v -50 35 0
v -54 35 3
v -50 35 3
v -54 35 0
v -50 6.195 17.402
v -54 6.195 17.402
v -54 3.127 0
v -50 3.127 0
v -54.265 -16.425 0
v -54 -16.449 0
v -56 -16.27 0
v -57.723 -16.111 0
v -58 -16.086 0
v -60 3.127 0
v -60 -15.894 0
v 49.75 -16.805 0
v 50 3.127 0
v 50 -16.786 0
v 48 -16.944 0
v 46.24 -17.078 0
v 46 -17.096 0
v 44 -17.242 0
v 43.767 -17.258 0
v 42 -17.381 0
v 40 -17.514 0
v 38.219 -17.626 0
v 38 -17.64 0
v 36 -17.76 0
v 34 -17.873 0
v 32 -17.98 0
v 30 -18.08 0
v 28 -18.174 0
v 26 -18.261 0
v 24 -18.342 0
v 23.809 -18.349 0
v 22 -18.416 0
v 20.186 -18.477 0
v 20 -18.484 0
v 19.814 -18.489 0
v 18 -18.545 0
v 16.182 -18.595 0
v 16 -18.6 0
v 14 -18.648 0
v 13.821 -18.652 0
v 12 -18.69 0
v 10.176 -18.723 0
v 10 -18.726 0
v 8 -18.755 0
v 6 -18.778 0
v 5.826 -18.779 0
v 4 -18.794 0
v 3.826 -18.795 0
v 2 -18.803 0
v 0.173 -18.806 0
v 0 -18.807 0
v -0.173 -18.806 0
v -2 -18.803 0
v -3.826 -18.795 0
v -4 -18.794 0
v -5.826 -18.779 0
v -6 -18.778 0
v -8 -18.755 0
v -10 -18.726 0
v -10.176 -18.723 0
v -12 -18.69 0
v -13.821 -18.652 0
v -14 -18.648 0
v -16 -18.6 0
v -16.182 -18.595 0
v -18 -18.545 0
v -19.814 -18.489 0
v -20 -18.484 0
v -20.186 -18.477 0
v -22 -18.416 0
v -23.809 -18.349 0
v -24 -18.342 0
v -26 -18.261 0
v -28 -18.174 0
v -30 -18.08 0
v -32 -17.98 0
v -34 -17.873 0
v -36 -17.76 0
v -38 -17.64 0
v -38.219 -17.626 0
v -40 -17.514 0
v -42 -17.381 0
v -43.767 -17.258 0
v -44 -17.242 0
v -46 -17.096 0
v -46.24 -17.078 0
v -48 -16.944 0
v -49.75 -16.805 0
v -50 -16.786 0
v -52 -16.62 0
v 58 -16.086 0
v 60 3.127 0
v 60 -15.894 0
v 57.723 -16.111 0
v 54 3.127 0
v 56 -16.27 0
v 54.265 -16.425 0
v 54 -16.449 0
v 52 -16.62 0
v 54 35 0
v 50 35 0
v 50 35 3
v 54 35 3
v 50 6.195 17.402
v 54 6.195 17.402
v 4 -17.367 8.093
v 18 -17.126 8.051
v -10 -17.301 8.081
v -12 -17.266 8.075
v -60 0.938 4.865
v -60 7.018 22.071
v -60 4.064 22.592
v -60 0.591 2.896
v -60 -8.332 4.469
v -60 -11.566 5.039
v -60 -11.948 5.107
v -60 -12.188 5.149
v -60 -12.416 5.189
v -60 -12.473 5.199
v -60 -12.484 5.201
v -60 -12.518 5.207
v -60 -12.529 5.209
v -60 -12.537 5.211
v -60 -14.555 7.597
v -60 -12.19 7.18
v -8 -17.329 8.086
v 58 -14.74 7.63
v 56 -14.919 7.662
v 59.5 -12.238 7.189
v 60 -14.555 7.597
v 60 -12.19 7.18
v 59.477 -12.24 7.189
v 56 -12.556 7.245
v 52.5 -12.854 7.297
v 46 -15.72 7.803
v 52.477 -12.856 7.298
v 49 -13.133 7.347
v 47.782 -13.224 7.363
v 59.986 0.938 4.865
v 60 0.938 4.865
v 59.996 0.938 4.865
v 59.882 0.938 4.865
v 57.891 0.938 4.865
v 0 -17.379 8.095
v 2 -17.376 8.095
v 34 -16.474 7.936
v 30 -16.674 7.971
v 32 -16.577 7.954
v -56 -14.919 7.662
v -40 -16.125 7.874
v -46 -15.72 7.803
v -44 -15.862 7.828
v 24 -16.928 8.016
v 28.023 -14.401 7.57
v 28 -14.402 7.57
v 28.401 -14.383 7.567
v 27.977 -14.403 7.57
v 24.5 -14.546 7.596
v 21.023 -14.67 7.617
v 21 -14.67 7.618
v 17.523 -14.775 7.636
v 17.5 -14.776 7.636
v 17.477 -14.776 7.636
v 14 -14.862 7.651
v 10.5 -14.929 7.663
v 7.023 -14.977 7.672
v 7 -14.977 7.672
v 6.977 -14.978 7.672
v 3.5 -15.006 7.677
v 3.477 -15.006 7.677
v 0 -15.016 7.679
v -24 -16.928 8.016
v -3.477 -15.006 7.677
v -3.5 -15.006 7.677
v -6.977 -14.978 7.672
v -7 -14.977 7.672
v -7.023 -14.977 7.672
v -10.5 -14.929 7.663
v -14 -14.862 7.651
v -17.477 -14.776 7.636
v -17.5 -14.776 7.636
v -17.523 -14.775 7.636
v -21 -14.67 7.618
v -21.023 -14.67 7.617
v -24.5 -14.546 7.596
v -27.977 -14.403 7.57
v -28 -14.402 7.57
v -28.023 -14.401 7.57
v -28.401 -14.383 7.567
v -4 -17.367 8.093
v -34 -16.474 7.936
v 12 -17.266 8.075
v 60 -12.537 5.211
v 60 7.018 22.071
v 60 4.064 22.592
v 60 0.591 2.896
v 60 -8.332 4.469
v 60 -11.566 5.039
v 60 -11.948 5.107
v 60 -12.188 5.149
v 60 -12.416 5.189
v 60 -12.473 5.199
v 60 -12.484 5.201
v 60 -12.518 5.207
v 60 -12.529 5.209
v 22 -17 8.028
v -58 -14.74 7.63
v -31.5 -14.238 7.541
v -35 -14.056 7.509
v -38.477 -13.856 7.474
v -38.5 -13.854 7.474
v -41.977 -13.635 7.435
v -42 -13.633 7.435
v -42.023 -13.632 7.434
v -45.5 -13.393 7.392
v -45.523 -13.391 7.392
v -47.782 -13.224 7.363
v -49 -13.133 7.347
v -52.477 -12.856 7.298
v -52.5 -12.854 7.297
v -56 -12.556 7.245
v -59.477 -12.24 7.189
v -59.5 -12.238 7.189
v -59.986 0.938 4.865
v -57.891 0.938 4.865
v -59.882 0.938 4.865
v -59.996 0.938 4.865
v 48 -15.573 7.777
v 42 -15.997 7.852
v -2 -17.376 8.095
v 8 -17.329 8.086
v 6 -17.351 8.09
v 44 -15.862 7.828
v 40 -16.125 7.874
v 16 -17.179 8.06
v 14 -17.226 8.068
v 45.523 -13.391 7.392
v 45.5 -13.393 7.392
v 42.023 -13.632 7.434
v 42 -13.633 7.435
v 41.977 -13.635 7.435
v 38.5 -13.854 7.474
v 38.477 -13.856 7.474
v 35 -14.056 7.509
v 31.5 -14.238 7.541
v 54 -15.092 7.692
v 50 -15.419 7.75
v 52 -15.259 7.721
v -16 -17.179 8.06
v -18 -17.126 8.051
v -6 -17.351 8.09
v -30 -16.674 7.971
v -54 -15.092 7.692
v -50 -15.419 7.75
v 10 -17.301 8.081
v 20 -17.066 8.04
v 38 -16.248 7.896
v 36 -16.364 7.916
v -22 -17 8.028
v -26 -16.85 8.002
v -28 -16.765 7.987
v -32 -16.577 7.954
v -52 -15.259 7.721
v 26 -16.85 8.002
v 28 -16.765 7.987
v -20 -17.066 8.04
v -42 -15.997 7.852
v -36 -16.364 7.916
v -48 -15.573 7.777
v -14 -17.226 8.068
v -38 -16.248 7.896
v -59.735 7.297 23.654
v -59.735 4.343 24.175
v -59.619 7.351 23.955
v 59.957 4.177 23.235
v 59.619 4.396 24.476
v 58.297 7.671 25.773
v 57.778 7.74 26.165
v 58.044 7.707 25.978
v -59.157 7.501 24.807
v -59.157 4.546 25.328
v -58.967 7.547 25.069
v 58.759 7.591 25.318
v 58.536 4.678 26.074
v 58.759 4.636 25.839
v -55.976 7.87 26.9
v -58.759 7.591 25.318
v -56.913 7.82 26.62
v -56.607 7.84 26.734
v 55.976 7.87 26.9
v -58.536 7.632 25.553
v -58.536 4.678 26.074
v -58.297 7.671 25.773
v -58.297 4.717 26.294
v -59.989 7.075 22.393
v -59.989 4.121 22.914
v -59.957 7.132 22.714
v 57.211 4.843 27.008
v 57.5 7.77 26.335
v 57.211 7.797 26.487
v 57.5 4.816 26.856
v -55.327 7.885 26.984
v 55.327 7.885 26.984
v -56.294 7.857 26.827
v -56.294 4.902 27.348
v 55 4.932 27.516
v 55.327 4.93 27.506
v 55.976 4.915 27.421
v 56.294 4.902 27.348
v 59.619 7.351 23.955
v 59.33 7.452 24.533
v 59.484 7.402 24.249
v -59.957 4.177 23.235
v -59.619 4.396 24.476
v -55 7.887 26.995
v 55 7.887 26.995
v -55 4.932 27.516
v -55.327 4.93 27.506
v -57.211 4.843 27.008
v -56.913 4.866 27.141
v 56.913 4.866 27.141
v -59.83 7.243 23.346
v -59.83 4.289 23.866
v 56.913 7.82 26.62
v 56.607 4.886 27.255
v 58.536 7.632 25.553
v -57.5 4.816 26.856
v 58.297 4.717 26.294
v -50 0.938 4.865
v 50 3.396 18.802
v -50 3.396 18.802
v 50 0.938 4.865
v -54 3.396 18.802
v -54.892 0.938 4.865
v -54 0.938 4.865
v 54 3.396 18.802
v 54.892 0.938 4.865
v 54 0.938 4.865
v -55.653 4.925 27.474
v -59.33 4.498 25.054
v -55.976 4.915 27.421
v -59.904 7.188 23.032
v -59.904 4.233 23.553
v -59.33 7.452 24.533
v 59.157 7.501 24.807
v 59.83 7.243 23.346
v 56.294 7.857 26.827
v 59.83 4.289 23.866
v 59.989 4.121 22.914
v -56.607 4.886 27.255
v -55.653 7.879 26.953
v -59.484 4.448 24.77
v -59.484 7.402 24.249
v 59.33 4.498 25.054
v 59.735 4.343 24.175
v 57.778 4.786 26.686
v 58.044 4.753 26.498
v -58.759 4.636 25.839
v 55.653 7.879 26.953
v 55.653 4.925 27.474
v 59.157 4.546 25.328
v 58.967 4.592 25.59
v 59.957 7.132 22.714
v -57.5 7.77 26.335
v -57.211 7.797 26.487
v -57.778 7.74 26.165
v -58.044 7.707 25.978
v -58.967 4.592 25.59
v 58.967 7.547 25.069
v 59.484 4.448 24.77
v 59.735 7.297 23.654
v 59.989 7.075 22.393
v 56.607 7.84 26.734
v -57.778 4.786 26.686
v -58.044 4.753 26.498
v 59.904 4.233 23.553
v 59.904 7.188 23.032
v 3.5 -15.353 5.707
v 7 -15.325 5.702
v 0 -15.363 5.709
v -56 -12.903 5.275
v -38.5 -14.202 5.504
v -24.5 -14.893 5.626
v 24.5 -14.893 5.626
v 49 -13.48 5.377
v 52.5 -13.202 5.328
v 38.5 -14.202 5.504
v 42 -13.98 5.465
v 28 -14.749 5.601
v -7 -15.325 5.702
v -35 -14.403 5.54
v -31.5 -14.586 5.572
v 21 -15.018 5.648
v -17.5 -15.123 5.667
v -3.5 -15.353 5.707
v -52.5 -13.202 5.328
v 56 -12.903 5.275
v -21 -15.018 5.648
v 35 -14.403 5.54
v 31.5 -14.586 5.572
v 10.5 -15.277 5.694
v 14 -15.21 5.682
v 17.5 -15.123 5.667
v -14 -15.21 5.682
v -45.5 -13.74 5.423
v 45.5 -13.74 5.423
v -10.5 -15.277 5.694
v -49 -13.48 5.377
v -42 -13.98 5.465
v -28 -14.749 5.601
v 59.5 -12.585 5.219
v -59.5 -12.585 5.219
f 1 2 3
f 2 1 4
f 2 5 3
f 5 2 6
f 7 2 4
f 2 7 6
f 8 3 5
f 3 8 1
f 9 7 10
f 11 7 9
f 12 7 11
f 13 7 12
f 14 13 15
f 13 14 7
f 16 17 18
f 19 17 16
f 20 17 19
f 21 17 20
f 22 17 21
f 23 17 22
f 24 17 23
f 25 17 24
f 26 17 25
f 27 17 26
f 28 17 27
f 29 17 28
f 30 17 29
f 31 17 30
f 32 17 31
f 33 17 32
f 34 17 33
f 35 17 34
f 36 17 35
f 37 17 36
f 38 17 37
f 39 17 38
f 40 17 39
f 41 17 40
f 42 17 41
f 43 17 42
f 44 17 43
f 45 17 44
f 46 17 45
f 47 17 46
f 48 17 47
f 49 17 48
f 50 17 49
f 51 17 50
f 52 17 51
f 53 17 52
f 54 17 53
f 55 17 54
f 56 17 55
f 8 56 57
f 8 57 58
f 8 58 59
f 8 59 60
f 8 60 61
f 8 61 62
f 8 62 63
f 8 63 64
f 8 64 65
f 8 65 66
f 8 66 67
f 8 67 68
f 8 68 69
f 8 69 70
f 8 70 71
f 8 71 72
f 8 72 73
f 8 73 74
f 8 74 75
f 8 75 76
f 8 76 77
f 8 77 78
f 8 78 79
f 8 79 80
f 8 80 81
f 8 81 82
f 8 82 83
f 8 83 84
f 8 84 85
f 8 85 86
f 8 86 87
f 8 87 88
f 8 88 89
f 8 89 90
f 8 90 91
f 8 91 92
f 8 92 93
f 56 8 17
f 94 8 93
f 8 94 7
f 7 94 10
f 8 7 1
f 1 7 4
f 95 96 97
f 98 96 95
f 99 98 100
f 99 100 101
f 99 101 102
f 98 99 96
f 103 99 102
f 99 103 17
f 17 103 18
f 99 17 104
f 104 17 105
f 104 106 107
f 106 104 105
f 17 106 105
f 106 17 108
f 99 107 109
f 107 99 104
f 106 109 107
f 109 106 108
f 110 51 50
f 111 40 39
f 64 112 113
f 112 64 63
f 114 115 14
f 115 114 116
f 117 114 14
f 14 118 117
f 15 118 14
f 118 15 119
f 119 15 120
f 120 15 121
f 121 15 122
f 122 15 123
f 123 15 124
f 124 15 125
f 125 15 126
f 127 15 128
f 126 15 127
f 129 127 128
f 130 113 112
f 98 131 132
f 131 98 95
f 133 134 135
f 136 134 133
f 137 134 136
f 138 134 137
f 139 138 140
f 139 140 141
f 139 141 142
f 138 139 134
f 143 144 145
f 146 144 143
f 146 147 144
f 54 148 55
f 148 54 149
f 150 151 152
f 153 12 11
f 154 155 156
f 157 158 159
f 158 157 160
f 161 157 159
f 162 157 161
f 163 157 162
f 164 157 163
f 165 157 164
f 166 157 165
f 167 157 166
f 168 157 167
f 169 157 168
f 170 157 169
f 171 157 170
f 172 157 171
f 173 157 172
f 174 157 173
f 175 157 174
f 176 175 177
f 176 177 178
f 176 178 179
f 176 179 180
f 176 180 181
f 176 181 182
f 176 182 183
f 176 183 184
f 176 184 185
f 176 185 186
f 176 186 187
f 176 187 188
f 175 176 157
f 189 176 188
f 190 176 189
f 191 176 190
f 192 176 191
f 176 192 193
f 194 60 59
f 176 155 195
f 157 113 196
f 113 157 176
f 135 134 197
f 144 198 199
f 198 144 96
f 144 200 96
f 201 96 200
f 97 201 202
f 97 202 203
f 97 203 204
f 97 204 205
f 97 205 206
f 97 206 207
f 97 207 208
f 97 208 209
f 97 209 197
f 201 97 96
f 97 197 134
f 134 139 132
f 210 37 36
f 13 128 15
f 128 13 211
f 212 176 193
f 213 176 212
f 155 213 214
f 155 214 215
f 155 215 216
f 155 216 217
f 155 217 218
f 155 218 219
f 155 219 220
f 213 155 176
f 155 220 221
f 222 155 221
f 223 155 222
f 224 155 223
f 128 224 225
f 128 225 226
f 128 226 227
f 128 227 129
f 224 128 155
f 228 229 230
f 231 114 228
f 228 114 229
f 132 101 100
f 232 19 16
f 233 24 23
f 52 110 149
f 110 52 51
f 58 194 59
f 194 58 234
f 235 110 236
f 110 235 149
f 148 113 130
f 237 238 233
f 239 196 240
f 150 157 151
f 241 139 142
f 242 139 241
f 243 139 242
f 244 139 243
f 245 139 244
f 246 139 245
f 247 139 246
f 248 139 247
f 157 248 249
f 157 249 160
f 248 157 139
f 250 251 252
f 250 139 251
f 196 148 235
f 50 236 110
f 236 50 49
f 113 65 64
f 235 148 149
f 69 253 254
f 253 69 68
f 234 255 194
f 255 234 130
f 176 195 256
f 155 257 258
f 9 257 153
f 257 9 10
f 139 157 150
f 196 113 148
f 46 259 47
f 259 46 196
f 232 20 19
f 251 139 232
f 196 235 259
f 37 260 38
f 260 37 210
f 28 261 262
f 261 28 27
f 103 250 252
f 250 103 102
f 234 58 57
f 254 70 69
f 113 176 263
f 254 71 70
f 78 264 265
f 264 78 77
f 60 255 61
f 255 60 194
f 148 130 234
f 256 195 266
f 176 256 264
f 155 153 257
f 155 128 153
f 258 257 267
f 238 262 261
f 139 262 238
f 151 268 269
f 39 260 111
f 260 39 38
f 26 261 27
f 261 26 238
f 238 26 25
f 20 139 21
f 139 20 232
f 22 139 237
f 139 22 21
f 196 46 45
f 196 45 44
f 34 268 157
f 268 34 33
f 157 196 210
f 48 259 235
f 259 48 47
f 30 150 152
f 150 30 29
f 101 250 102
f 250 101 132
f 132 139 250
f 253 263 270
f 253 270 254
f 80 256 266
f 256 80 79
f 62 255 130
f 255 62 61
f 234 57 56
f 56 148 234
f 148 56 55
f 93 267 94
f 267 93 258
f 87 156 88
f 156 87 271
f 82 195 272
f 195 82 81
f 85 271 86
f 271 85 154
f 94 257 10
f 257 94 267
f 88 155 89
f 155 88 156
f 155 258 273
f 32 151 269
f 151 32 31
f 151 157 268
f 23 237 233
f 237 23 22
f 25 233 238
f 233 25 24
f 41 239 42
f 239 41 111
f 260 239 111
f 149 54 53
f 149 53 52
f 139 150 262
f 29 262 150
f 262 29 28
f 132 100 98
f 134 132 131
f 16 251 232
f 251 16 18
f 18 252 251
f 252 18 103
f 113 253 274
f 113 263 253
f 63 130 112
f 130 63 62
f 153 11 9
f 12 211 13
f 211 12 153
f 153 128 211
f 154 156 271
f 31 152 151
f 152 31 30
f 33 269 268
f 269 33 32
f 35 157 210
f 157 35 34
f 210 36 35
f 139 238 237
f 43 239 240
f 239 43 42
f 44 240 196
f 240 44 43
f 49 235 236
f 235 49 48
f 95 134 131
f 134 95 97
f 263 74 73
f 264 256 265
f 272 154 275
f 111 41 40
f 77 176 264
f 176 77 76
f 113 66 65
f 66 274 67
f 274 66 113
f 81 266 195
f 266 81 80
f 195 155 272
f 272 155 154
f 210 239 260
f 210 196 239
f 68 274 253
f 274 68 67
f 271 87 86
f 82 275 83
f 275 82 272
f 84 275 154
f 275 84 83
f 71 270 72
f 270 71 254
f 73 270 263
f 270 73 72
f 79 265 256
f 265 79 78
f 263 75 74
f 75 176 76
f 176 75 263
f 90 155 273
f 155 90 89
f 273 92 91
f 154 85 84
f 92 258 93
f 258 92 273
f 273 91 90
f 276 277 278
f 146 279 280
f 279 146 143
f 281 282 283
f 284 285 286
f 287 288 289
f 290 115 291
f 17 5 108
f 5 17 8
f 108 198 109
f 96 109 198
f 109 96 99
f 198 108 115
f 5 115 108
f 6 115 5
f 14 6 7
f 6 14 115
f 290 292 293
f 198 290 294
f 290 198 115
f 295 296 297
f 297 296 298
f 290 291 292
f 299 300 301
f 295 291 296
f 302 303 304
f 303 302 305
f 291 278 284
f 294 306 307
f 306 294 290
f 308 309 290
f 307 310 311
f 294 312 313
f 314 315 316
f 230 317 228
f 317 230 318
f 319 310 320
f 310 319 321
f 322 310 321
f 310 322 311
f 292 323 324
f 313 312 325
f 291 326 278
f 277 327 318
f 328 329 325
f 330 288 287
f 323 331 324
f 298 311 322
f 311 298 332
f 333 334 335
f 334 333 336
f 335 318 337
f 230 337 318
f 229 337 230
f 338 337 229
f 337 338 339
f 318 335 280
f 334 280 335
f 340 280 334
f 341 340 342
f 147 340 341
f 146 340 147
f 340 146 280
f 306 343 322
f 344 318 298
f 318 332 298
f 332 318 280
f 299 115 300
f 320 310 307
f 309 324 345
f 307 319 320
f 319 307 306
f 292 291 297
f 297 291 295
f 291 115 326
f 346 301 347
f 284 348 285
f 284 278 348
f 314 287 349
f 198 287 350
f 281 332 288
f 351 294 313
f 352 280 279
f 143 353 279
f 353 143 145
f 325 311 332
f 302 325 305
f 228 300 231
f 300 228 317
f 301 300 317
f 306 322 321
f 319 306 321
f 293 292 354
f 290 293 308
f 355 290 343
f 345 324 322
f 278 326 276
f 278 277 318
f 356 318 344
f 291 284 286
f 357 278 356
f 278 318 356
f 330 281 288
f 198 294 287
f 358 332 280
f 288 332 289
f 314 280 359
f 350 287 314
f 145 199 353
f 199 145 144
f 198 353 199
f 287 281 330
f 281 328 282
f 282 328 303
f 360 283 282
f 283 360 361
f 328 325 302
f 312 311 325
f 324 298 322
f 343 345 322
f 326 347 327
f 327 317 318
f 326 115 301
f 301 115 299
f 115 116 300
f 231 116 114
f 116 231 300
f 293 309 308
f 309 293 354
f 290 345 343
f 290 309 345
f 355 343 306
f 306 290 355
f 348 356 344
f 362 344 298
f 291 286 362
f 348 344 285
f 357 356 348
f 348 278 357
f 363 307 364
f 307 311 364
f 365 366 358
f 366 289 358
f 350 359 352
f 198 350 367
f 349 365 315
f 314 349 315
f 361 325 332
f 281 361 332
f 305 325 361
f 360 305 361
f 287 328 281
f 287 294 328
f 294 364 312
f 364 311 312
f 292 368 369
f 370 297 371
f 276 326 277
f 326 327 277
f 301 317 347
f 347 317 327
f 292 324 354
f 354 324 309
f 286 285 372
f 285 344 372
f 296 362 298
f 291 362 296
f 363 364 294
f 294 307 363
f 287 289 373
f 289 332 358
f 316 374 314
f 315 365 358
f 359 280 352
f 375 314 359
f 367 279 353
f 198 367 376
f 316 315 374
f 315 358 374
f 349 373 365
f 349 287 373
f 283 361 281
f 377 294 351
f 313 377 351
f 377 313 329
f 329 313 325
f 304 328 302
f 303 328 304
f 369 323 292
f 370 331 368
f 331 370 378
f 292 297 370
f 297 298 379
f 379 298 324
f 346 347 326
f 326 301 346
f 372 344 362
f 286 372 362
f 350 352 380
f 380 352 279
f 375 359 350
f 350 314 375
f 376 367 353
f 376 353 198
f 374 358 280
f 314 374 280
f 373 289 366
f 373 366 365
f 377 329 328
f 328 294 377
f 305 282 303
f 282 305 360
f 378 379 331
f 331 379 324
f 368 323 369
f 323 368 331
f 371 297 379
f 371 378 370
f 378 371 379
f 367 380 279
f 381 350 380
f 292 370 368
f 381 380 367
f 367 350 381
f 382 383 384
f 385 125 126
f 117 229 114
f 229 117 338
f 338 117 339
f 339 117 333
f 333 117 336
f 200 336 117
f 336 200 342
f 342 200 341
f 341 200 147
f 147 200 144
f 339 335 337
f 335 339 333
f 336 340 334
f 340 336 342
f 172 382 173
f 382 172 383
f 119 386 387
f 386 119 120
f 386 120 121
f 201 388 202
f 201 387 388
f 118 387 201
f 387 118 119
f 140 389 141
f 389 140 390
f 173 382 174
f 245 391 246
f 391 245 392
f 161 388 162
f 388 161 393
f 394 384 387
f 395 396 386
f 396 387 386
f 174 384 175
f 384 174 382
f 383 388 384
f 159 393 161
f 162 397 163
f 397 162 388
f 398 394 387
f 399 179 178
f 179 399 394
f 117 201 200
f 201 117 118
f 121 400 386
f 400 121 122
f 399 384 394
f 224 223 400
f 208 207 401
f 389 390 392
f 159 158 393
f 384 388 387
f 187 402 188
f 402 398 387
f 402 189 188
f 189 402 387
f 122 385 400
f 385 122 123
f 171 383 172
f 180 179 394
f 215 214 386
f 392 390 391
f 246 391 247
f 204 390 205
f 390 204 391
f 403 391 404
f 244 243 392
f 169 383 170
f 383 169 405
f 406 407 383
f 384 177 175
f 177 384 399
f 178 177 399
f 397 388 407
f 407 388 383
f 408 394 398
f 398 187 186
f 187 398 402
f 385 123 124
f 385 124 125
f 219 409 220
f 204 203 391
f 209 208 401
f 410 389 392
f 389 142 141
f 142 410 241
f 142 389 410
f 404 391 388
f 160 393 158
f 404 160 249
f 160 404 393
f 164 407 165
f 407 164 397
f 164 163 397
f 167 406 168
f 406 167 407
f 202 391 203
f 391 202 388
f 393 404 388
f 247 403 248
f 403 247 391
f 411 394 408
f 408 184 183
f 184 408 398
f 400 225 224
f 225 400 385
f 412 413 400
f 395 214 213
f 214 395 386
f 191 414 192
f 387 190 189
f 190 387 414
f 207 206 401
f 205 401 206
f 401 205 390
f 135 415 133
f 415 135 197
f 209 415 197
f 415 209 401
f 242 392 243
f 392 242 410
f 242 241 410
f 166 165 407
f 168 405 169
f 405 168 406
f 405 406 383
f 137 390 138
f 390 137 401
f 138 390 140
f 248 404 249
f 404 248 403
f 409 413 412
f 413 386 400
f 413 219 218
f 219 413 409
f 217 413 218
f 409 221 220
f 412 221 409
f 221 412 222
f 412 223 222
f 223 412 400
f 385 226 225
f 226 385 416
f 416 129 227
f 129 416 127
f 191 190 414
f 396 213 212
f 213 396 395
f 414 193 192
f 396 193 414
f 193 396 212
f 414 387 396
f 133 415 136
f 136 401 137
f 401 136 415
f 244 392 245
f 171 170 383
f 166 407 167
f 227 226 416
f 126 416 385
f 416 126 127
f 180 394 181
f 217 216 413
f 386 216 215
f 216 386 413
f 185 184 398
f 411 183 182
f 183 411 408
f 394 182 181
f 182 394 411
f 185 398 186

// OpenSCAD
// ============================================================================
//  Minimalistische standaard voor gedenkplaat (Roc du Maroc Finisher)
//  Zo weinig mogelijk zichtbaar: vooraan enkel een lipje van 2 mm,
//  alles anders zit verstopt achter de plaat (< 30 mm hoog).
//  Plaat: 200 mm breed, achterkant vlak, voorkant boog 15 -> 7 mm.
//  Plaat leunt 10° achterover; daardoor kan hij niet naar voren kantelen
//  en volstaan twee driehoekige steunpoten achteraan.
//  Printer: FlashForge Adventurer 4 · PLA/PETG · 0.2 mm · 3 wanden · 30% infill
//  Printoriëntatie: zo, plat op de onderkant. Geen support nodig.
// ============================================================================

/* [Plaat] */
plaat_breedte   = 200;
plaat_dik_mid   = 15;
plaat_dik_rand  = 7;
speling         = 0.6;

/* [Standaard] */
breedte         = 120;   // breedte van de wieg
hoek            = 10;    // graden achterover
bodem           = 3;     // dikte onder de gleuf
lip_h           = 2;     // letters staan op 2,5 mm van de onderrand
lip_wand        = 2.4;   // dikte voorste lip (6 lagen bij 0,4 mm nozzle)
rug_h           = 25;    // hoogte achterwand boven de gleufbodem
rug_dik         = 3;
poot_lengte     = 35;    // hoe ver de steunpoten naar achter lopen
poot_dik        = 4;
poot_inzet      = 8;     // afstand van de poot tot de zijkant van de wieg

$fn = 96;

half = plaat_breedte / 2;
sag  = plaat_dik_mid - plaat_dik_rand;
R    = (half*half + sag*sag) / (2*sag);
cy   = plaat_dik_mid - R;
function dik(x) = sqrt(R*R - x*x) + cy;

module plaat_2d(extra_voor=0, extra_achter=0, xmax=half) {
    n = 60;
    voor = [for (i=[0:n]) let(x = -xmax + 2*xmax*i/n) [x, -(dik(x) + extra_voor)]];
    polygon(concat(voor, [[xmax, extra_achter], [-xmax, extra_achter]]));
}

module kantel() { translate([0, 0, bodem]) rotate([-hoek, 0, 0]) children(); }

module standaard() {
    difference() {
        intersection() {
            union() {
                // Wieg: lip vooraan + bodem
                kantel() translate([0, 0, -bodem - 4])
                    linear_extrude(lip_h + bodem + 4)
                        plaat_2d(speling + lip_wand, speling + rug_dik, breedte/2);
                // Achterwand (verstopt achter de plaat), afgeronde bovenhoeken
                kantel() translate([0, speling, -bodem - 4])
                    hull() {
                        translate([-breedte/2, 0, 0]) cube([breedte, rug_dik, 1]);
                        for (sx=[-1,1])
                            translate([sx*(breedte/2 - 5), 0, rug_h + bodem + 4 - 5])
                                rotate([-90,0,0]) cylinder(h=rug_dik, r=5);
                    }
                // Twee driehoekige steunpoten naar achter
                for (sx=[-1,1])
                    translate([sx*(breedte/2 - poot_inzet) - poot_dik/2, 0, 0])
                        rotate([90,0,90]) linear_extrude(poot_dik)
                            hull() {
                                square([poot_lengte, 3]);
                                translate([0, 0]) square([1, rug_h * 0.8]);
                            }
            }
            translate([-breedte/2, -40, 0]) cube([breedte, 40 + poot_lengte + 5, 100]);
        }
        kantel() linear_extrude(300) plaat_2d(speling, speling, half + 5);
    }
}

standaard();
